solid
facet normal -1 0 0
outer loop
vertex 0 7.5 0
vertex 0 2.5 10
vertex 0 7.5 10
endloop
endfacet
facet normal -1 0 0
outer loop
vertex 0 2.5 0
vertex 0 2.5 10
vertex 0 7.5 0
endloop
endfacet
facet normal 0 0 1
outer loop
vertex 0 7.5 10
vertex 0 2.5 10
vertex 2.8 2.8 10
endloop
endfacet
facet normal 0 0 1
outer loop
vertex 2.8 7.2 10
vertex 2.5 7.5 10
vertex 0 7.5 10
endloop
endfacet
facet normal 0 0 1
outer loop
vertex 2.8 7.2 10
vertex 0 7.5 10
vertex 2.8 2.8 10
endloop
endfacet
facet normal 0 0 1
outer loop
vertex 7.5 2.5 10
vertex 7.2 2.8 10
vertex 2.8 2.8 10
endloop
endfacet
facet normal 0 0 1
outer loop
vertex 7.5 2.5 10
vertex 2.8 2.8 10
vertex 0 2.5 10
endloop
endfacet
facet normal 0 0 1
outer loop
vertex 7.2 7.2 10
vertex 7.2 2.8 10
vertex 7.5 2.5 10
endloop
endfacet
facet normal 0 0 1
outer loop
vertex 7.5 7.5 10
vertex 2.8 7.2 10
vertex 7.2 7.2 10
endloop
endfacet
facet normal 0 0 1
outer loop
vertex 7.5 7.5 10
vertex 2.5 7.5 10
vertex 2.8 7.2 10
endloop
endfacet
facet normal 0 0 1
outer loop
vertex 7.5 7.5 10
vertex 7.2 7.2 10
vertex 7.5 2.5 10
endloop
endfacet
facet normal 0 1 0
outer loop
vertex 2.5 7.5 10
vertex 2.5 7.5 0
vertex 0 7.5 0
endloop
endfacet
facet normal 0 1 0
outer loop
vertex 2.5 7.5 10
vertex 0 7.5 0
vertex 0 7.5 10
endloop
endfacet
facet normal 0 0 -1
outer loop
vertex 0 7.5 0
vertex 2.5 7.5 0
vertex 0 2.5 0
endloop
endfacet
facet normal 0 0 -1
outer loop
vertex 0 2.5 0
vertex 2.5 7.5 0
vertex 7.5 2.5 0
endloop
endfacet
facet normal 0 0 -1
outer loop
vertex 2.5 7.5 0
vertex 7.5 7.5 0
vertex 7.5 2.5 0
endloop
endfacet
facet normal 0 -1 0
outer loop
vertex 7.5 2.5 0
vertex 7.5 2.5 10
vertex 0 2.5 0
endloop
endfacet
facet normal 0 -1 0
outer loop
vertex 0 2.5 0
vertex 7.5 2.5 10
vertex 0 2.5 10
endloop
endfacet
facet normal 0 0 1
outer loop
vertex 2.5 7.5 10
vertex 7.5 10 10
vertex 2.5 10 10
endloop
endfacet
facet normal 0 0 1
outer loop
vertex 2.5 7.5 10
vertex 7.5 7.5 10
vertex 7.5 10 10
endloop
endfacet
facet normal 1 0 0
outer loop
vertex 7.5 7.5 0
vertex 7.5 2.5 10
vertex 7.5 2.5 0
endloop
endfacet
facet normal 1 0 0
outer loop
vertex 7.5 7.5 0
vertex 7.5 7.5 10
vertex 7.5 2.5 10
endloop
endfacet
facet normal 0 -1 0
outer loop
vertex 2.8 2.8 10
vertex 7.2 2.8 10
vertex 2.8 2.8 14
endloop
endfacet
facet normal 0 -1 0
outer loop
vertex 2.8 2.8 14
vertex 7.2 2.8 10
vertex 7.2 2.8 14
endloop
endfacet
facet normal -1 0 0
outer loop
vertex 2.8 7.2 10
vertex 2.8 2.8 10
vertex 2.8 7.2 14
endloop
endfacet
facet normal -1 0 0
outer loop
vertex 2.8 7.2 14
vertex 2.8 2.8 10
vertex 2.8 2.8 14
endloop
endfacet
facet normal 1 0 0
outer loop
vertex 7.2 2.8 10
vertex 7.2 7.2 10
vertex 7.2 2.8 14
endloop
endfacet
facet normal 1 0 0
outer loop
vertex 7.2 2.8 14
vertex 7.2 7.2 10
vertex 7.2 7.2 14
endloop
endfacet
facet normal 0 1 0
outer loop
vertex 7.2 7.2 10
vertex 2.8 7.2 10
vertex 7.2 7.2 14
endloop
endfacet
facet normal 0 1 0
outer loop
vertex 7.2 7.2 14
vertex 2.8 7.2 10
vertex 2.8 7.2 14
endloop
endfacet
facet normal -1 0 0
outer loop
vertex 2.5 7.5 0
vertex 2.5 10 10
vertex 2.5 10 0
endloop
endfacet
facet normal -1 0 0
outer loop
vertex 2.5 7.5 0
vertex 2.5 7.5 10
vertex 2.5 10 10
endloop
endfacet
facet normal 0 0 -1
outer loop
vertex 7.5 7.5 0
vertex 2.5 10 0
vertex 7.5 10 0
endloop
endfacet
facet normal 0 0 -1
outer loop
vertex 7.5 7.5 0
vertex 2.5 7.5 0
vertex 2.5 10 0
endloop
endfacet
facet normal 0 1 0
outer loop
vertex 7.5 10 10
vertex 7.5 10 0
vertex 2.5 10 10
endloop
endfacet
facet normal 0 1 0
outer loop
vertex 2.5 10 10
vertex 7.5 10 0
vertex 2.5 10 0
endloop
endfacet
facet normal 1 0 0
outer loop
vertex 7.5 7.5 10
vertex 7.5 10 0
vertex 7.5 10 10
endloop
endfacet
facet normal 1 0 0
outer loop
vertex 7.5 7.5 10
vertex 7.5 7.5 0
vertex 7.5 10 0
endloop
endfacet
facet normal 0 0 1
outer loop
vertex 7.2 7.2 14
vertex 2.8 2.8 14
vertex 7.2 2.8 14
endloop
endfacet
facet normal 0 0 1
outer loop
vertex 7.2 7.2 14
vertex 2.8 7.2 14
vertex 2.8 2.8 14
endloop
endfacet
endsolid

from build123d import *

# Parameters (mm, degrees)
BOX_W              = 10
BOX_H              = 10
BOX_DEPTH          = 10
SKETCH_W           = 4.4
SKETCH_H           = 4.4
PAD_DEPTH          = 4
PAD_FACE4_W        = 10
PAD_FACE4_H        = 10
POCKET_DEPTH       = 2.5
POCKET_FACE5_W     = 10
POCKET_FACE5_H     = 10
POCKET001_DEPTH    = 2.5
SKETCH001_W        = 5
SKETCH001_H        = 10
PAD001_DEPTH       = 10
SKETCH002_W        = 4.4
SKETCH002_H        = 4.4
PAD002_DEPTH       = 4
PAD002_FACE22_W    = 4.4
PAD002_FACE22_H    = 4.4
POCKET002_DEPTH    = 5
POCKET002_FACE16_W = 5
POCKET002_FACE16_H = 10
POCKET003_DEPTH    = 7.5
POCKET003_FACE7_W  = 2.5
POCKET003_FACE7_H  = 10
POCKET004_DEPTH    = 5


with BuildPart() as part:
    # Box → Box (new body)
    with BuildSketch(Plane.XY):
        with Locations((5, 5)):
            Rectangle(BOX_W, BOX_H)
    extrude(amount=BOX_DEPTH)

    # Sketch (on Face6 of BaseFeature) → Pad (new body)
    with BuildSketch(Plane.XY.offset(10)):
        with Locations((5, 5)):
            Rectangle(SKETCH_W, SKETCH_H)
    extrude(amount=PAD_DEPTH)

    # Pad Face4 → Pocket (cut)
    with BuildSketch(Plane(origin=(5, 10, 5), x_dir=(1, 0, 0), z_dir=(0, 1, 0))):
        Rectangle(PAD_FACE4_W, PAD_FACE4_H)
    extrude(amount=-POCKET_DEPTH, mode=Mode.SUBTRACT)

    # Pocket Face5 → Pocket001 (cut)
    with BuildSketch(Plane(origin=(5, 0, 5), x_dir=(-1, 0, 0), z_dir=(0, -1, 0))):
        Rectangle(POCKET_FACE5_W, POCKET_FACE5_H)
    extrude(amount=-POCKET001_DEPTH, mode=Mode.SUBTRACT)

    # Sketch001 (on Face3 of Pocket001) → Pad001 (join)
    with BuildSketch(Plane(origin=(0, 7.5, 0), x_dir=(-1, 0, 0), z_dir=(0, 1, 0))):
        with Locations((-5, 5)):
            Rectangle(SKETCH001_W, SKETCH001_H)
    extrude(amount=PAD001_DEPTH)

    # Sketch002 (on Face6 of Pad001) → Pad002 (join)
    with BuildSketch(Plane.XY.offset(10)):
        with Locations((5, 12.5)):
            Rectangle(SKETCH002_W, SKETCH002_H)
    extrude(amount=PAD002_DEPTH)

    # Pad002 Face22 → Pocket002 (cut)
    with BuildSketch(Plane(origin=(5, 12.5, 14), x_dir=(0, 1, 0), z_dir=(0, 0, 1))):
        Rectangle(PAD002_FACE22_W, PAD002_FACE22_H)
    extrude(amount=-POCKET002_DEPTH, mode=Mode.SUBTRACT)

    # Pocket002 Face16 → Pocket003 (cut)
    with BuildSketch(Plane(origin=(5, 17.5, 5), x_dir=(1, 0, 0), z_dir=(0, 1, 0))):
        Rectangle(POCKET002_FACE16_W, POCKET002_FACE16_H)
    extrude(amount=-POCKET003_DEPTH, mode=Mode.SUBTRACT)

    # Pocket003 Face7 → Pocket004 (cut)
    with BuildSketch(Plane(origin=(8.75, 7.5, 5), x_dir=(1, 0, 0), z_dir=(0, 1, 0))):
        Rectangle(POCKET003_FACE7_W, POCKET003_FACE7_H)
    extrude(amount=-POCKET004_DEPTH, mode=Mode.SUBTRACT)


solid = part.part
